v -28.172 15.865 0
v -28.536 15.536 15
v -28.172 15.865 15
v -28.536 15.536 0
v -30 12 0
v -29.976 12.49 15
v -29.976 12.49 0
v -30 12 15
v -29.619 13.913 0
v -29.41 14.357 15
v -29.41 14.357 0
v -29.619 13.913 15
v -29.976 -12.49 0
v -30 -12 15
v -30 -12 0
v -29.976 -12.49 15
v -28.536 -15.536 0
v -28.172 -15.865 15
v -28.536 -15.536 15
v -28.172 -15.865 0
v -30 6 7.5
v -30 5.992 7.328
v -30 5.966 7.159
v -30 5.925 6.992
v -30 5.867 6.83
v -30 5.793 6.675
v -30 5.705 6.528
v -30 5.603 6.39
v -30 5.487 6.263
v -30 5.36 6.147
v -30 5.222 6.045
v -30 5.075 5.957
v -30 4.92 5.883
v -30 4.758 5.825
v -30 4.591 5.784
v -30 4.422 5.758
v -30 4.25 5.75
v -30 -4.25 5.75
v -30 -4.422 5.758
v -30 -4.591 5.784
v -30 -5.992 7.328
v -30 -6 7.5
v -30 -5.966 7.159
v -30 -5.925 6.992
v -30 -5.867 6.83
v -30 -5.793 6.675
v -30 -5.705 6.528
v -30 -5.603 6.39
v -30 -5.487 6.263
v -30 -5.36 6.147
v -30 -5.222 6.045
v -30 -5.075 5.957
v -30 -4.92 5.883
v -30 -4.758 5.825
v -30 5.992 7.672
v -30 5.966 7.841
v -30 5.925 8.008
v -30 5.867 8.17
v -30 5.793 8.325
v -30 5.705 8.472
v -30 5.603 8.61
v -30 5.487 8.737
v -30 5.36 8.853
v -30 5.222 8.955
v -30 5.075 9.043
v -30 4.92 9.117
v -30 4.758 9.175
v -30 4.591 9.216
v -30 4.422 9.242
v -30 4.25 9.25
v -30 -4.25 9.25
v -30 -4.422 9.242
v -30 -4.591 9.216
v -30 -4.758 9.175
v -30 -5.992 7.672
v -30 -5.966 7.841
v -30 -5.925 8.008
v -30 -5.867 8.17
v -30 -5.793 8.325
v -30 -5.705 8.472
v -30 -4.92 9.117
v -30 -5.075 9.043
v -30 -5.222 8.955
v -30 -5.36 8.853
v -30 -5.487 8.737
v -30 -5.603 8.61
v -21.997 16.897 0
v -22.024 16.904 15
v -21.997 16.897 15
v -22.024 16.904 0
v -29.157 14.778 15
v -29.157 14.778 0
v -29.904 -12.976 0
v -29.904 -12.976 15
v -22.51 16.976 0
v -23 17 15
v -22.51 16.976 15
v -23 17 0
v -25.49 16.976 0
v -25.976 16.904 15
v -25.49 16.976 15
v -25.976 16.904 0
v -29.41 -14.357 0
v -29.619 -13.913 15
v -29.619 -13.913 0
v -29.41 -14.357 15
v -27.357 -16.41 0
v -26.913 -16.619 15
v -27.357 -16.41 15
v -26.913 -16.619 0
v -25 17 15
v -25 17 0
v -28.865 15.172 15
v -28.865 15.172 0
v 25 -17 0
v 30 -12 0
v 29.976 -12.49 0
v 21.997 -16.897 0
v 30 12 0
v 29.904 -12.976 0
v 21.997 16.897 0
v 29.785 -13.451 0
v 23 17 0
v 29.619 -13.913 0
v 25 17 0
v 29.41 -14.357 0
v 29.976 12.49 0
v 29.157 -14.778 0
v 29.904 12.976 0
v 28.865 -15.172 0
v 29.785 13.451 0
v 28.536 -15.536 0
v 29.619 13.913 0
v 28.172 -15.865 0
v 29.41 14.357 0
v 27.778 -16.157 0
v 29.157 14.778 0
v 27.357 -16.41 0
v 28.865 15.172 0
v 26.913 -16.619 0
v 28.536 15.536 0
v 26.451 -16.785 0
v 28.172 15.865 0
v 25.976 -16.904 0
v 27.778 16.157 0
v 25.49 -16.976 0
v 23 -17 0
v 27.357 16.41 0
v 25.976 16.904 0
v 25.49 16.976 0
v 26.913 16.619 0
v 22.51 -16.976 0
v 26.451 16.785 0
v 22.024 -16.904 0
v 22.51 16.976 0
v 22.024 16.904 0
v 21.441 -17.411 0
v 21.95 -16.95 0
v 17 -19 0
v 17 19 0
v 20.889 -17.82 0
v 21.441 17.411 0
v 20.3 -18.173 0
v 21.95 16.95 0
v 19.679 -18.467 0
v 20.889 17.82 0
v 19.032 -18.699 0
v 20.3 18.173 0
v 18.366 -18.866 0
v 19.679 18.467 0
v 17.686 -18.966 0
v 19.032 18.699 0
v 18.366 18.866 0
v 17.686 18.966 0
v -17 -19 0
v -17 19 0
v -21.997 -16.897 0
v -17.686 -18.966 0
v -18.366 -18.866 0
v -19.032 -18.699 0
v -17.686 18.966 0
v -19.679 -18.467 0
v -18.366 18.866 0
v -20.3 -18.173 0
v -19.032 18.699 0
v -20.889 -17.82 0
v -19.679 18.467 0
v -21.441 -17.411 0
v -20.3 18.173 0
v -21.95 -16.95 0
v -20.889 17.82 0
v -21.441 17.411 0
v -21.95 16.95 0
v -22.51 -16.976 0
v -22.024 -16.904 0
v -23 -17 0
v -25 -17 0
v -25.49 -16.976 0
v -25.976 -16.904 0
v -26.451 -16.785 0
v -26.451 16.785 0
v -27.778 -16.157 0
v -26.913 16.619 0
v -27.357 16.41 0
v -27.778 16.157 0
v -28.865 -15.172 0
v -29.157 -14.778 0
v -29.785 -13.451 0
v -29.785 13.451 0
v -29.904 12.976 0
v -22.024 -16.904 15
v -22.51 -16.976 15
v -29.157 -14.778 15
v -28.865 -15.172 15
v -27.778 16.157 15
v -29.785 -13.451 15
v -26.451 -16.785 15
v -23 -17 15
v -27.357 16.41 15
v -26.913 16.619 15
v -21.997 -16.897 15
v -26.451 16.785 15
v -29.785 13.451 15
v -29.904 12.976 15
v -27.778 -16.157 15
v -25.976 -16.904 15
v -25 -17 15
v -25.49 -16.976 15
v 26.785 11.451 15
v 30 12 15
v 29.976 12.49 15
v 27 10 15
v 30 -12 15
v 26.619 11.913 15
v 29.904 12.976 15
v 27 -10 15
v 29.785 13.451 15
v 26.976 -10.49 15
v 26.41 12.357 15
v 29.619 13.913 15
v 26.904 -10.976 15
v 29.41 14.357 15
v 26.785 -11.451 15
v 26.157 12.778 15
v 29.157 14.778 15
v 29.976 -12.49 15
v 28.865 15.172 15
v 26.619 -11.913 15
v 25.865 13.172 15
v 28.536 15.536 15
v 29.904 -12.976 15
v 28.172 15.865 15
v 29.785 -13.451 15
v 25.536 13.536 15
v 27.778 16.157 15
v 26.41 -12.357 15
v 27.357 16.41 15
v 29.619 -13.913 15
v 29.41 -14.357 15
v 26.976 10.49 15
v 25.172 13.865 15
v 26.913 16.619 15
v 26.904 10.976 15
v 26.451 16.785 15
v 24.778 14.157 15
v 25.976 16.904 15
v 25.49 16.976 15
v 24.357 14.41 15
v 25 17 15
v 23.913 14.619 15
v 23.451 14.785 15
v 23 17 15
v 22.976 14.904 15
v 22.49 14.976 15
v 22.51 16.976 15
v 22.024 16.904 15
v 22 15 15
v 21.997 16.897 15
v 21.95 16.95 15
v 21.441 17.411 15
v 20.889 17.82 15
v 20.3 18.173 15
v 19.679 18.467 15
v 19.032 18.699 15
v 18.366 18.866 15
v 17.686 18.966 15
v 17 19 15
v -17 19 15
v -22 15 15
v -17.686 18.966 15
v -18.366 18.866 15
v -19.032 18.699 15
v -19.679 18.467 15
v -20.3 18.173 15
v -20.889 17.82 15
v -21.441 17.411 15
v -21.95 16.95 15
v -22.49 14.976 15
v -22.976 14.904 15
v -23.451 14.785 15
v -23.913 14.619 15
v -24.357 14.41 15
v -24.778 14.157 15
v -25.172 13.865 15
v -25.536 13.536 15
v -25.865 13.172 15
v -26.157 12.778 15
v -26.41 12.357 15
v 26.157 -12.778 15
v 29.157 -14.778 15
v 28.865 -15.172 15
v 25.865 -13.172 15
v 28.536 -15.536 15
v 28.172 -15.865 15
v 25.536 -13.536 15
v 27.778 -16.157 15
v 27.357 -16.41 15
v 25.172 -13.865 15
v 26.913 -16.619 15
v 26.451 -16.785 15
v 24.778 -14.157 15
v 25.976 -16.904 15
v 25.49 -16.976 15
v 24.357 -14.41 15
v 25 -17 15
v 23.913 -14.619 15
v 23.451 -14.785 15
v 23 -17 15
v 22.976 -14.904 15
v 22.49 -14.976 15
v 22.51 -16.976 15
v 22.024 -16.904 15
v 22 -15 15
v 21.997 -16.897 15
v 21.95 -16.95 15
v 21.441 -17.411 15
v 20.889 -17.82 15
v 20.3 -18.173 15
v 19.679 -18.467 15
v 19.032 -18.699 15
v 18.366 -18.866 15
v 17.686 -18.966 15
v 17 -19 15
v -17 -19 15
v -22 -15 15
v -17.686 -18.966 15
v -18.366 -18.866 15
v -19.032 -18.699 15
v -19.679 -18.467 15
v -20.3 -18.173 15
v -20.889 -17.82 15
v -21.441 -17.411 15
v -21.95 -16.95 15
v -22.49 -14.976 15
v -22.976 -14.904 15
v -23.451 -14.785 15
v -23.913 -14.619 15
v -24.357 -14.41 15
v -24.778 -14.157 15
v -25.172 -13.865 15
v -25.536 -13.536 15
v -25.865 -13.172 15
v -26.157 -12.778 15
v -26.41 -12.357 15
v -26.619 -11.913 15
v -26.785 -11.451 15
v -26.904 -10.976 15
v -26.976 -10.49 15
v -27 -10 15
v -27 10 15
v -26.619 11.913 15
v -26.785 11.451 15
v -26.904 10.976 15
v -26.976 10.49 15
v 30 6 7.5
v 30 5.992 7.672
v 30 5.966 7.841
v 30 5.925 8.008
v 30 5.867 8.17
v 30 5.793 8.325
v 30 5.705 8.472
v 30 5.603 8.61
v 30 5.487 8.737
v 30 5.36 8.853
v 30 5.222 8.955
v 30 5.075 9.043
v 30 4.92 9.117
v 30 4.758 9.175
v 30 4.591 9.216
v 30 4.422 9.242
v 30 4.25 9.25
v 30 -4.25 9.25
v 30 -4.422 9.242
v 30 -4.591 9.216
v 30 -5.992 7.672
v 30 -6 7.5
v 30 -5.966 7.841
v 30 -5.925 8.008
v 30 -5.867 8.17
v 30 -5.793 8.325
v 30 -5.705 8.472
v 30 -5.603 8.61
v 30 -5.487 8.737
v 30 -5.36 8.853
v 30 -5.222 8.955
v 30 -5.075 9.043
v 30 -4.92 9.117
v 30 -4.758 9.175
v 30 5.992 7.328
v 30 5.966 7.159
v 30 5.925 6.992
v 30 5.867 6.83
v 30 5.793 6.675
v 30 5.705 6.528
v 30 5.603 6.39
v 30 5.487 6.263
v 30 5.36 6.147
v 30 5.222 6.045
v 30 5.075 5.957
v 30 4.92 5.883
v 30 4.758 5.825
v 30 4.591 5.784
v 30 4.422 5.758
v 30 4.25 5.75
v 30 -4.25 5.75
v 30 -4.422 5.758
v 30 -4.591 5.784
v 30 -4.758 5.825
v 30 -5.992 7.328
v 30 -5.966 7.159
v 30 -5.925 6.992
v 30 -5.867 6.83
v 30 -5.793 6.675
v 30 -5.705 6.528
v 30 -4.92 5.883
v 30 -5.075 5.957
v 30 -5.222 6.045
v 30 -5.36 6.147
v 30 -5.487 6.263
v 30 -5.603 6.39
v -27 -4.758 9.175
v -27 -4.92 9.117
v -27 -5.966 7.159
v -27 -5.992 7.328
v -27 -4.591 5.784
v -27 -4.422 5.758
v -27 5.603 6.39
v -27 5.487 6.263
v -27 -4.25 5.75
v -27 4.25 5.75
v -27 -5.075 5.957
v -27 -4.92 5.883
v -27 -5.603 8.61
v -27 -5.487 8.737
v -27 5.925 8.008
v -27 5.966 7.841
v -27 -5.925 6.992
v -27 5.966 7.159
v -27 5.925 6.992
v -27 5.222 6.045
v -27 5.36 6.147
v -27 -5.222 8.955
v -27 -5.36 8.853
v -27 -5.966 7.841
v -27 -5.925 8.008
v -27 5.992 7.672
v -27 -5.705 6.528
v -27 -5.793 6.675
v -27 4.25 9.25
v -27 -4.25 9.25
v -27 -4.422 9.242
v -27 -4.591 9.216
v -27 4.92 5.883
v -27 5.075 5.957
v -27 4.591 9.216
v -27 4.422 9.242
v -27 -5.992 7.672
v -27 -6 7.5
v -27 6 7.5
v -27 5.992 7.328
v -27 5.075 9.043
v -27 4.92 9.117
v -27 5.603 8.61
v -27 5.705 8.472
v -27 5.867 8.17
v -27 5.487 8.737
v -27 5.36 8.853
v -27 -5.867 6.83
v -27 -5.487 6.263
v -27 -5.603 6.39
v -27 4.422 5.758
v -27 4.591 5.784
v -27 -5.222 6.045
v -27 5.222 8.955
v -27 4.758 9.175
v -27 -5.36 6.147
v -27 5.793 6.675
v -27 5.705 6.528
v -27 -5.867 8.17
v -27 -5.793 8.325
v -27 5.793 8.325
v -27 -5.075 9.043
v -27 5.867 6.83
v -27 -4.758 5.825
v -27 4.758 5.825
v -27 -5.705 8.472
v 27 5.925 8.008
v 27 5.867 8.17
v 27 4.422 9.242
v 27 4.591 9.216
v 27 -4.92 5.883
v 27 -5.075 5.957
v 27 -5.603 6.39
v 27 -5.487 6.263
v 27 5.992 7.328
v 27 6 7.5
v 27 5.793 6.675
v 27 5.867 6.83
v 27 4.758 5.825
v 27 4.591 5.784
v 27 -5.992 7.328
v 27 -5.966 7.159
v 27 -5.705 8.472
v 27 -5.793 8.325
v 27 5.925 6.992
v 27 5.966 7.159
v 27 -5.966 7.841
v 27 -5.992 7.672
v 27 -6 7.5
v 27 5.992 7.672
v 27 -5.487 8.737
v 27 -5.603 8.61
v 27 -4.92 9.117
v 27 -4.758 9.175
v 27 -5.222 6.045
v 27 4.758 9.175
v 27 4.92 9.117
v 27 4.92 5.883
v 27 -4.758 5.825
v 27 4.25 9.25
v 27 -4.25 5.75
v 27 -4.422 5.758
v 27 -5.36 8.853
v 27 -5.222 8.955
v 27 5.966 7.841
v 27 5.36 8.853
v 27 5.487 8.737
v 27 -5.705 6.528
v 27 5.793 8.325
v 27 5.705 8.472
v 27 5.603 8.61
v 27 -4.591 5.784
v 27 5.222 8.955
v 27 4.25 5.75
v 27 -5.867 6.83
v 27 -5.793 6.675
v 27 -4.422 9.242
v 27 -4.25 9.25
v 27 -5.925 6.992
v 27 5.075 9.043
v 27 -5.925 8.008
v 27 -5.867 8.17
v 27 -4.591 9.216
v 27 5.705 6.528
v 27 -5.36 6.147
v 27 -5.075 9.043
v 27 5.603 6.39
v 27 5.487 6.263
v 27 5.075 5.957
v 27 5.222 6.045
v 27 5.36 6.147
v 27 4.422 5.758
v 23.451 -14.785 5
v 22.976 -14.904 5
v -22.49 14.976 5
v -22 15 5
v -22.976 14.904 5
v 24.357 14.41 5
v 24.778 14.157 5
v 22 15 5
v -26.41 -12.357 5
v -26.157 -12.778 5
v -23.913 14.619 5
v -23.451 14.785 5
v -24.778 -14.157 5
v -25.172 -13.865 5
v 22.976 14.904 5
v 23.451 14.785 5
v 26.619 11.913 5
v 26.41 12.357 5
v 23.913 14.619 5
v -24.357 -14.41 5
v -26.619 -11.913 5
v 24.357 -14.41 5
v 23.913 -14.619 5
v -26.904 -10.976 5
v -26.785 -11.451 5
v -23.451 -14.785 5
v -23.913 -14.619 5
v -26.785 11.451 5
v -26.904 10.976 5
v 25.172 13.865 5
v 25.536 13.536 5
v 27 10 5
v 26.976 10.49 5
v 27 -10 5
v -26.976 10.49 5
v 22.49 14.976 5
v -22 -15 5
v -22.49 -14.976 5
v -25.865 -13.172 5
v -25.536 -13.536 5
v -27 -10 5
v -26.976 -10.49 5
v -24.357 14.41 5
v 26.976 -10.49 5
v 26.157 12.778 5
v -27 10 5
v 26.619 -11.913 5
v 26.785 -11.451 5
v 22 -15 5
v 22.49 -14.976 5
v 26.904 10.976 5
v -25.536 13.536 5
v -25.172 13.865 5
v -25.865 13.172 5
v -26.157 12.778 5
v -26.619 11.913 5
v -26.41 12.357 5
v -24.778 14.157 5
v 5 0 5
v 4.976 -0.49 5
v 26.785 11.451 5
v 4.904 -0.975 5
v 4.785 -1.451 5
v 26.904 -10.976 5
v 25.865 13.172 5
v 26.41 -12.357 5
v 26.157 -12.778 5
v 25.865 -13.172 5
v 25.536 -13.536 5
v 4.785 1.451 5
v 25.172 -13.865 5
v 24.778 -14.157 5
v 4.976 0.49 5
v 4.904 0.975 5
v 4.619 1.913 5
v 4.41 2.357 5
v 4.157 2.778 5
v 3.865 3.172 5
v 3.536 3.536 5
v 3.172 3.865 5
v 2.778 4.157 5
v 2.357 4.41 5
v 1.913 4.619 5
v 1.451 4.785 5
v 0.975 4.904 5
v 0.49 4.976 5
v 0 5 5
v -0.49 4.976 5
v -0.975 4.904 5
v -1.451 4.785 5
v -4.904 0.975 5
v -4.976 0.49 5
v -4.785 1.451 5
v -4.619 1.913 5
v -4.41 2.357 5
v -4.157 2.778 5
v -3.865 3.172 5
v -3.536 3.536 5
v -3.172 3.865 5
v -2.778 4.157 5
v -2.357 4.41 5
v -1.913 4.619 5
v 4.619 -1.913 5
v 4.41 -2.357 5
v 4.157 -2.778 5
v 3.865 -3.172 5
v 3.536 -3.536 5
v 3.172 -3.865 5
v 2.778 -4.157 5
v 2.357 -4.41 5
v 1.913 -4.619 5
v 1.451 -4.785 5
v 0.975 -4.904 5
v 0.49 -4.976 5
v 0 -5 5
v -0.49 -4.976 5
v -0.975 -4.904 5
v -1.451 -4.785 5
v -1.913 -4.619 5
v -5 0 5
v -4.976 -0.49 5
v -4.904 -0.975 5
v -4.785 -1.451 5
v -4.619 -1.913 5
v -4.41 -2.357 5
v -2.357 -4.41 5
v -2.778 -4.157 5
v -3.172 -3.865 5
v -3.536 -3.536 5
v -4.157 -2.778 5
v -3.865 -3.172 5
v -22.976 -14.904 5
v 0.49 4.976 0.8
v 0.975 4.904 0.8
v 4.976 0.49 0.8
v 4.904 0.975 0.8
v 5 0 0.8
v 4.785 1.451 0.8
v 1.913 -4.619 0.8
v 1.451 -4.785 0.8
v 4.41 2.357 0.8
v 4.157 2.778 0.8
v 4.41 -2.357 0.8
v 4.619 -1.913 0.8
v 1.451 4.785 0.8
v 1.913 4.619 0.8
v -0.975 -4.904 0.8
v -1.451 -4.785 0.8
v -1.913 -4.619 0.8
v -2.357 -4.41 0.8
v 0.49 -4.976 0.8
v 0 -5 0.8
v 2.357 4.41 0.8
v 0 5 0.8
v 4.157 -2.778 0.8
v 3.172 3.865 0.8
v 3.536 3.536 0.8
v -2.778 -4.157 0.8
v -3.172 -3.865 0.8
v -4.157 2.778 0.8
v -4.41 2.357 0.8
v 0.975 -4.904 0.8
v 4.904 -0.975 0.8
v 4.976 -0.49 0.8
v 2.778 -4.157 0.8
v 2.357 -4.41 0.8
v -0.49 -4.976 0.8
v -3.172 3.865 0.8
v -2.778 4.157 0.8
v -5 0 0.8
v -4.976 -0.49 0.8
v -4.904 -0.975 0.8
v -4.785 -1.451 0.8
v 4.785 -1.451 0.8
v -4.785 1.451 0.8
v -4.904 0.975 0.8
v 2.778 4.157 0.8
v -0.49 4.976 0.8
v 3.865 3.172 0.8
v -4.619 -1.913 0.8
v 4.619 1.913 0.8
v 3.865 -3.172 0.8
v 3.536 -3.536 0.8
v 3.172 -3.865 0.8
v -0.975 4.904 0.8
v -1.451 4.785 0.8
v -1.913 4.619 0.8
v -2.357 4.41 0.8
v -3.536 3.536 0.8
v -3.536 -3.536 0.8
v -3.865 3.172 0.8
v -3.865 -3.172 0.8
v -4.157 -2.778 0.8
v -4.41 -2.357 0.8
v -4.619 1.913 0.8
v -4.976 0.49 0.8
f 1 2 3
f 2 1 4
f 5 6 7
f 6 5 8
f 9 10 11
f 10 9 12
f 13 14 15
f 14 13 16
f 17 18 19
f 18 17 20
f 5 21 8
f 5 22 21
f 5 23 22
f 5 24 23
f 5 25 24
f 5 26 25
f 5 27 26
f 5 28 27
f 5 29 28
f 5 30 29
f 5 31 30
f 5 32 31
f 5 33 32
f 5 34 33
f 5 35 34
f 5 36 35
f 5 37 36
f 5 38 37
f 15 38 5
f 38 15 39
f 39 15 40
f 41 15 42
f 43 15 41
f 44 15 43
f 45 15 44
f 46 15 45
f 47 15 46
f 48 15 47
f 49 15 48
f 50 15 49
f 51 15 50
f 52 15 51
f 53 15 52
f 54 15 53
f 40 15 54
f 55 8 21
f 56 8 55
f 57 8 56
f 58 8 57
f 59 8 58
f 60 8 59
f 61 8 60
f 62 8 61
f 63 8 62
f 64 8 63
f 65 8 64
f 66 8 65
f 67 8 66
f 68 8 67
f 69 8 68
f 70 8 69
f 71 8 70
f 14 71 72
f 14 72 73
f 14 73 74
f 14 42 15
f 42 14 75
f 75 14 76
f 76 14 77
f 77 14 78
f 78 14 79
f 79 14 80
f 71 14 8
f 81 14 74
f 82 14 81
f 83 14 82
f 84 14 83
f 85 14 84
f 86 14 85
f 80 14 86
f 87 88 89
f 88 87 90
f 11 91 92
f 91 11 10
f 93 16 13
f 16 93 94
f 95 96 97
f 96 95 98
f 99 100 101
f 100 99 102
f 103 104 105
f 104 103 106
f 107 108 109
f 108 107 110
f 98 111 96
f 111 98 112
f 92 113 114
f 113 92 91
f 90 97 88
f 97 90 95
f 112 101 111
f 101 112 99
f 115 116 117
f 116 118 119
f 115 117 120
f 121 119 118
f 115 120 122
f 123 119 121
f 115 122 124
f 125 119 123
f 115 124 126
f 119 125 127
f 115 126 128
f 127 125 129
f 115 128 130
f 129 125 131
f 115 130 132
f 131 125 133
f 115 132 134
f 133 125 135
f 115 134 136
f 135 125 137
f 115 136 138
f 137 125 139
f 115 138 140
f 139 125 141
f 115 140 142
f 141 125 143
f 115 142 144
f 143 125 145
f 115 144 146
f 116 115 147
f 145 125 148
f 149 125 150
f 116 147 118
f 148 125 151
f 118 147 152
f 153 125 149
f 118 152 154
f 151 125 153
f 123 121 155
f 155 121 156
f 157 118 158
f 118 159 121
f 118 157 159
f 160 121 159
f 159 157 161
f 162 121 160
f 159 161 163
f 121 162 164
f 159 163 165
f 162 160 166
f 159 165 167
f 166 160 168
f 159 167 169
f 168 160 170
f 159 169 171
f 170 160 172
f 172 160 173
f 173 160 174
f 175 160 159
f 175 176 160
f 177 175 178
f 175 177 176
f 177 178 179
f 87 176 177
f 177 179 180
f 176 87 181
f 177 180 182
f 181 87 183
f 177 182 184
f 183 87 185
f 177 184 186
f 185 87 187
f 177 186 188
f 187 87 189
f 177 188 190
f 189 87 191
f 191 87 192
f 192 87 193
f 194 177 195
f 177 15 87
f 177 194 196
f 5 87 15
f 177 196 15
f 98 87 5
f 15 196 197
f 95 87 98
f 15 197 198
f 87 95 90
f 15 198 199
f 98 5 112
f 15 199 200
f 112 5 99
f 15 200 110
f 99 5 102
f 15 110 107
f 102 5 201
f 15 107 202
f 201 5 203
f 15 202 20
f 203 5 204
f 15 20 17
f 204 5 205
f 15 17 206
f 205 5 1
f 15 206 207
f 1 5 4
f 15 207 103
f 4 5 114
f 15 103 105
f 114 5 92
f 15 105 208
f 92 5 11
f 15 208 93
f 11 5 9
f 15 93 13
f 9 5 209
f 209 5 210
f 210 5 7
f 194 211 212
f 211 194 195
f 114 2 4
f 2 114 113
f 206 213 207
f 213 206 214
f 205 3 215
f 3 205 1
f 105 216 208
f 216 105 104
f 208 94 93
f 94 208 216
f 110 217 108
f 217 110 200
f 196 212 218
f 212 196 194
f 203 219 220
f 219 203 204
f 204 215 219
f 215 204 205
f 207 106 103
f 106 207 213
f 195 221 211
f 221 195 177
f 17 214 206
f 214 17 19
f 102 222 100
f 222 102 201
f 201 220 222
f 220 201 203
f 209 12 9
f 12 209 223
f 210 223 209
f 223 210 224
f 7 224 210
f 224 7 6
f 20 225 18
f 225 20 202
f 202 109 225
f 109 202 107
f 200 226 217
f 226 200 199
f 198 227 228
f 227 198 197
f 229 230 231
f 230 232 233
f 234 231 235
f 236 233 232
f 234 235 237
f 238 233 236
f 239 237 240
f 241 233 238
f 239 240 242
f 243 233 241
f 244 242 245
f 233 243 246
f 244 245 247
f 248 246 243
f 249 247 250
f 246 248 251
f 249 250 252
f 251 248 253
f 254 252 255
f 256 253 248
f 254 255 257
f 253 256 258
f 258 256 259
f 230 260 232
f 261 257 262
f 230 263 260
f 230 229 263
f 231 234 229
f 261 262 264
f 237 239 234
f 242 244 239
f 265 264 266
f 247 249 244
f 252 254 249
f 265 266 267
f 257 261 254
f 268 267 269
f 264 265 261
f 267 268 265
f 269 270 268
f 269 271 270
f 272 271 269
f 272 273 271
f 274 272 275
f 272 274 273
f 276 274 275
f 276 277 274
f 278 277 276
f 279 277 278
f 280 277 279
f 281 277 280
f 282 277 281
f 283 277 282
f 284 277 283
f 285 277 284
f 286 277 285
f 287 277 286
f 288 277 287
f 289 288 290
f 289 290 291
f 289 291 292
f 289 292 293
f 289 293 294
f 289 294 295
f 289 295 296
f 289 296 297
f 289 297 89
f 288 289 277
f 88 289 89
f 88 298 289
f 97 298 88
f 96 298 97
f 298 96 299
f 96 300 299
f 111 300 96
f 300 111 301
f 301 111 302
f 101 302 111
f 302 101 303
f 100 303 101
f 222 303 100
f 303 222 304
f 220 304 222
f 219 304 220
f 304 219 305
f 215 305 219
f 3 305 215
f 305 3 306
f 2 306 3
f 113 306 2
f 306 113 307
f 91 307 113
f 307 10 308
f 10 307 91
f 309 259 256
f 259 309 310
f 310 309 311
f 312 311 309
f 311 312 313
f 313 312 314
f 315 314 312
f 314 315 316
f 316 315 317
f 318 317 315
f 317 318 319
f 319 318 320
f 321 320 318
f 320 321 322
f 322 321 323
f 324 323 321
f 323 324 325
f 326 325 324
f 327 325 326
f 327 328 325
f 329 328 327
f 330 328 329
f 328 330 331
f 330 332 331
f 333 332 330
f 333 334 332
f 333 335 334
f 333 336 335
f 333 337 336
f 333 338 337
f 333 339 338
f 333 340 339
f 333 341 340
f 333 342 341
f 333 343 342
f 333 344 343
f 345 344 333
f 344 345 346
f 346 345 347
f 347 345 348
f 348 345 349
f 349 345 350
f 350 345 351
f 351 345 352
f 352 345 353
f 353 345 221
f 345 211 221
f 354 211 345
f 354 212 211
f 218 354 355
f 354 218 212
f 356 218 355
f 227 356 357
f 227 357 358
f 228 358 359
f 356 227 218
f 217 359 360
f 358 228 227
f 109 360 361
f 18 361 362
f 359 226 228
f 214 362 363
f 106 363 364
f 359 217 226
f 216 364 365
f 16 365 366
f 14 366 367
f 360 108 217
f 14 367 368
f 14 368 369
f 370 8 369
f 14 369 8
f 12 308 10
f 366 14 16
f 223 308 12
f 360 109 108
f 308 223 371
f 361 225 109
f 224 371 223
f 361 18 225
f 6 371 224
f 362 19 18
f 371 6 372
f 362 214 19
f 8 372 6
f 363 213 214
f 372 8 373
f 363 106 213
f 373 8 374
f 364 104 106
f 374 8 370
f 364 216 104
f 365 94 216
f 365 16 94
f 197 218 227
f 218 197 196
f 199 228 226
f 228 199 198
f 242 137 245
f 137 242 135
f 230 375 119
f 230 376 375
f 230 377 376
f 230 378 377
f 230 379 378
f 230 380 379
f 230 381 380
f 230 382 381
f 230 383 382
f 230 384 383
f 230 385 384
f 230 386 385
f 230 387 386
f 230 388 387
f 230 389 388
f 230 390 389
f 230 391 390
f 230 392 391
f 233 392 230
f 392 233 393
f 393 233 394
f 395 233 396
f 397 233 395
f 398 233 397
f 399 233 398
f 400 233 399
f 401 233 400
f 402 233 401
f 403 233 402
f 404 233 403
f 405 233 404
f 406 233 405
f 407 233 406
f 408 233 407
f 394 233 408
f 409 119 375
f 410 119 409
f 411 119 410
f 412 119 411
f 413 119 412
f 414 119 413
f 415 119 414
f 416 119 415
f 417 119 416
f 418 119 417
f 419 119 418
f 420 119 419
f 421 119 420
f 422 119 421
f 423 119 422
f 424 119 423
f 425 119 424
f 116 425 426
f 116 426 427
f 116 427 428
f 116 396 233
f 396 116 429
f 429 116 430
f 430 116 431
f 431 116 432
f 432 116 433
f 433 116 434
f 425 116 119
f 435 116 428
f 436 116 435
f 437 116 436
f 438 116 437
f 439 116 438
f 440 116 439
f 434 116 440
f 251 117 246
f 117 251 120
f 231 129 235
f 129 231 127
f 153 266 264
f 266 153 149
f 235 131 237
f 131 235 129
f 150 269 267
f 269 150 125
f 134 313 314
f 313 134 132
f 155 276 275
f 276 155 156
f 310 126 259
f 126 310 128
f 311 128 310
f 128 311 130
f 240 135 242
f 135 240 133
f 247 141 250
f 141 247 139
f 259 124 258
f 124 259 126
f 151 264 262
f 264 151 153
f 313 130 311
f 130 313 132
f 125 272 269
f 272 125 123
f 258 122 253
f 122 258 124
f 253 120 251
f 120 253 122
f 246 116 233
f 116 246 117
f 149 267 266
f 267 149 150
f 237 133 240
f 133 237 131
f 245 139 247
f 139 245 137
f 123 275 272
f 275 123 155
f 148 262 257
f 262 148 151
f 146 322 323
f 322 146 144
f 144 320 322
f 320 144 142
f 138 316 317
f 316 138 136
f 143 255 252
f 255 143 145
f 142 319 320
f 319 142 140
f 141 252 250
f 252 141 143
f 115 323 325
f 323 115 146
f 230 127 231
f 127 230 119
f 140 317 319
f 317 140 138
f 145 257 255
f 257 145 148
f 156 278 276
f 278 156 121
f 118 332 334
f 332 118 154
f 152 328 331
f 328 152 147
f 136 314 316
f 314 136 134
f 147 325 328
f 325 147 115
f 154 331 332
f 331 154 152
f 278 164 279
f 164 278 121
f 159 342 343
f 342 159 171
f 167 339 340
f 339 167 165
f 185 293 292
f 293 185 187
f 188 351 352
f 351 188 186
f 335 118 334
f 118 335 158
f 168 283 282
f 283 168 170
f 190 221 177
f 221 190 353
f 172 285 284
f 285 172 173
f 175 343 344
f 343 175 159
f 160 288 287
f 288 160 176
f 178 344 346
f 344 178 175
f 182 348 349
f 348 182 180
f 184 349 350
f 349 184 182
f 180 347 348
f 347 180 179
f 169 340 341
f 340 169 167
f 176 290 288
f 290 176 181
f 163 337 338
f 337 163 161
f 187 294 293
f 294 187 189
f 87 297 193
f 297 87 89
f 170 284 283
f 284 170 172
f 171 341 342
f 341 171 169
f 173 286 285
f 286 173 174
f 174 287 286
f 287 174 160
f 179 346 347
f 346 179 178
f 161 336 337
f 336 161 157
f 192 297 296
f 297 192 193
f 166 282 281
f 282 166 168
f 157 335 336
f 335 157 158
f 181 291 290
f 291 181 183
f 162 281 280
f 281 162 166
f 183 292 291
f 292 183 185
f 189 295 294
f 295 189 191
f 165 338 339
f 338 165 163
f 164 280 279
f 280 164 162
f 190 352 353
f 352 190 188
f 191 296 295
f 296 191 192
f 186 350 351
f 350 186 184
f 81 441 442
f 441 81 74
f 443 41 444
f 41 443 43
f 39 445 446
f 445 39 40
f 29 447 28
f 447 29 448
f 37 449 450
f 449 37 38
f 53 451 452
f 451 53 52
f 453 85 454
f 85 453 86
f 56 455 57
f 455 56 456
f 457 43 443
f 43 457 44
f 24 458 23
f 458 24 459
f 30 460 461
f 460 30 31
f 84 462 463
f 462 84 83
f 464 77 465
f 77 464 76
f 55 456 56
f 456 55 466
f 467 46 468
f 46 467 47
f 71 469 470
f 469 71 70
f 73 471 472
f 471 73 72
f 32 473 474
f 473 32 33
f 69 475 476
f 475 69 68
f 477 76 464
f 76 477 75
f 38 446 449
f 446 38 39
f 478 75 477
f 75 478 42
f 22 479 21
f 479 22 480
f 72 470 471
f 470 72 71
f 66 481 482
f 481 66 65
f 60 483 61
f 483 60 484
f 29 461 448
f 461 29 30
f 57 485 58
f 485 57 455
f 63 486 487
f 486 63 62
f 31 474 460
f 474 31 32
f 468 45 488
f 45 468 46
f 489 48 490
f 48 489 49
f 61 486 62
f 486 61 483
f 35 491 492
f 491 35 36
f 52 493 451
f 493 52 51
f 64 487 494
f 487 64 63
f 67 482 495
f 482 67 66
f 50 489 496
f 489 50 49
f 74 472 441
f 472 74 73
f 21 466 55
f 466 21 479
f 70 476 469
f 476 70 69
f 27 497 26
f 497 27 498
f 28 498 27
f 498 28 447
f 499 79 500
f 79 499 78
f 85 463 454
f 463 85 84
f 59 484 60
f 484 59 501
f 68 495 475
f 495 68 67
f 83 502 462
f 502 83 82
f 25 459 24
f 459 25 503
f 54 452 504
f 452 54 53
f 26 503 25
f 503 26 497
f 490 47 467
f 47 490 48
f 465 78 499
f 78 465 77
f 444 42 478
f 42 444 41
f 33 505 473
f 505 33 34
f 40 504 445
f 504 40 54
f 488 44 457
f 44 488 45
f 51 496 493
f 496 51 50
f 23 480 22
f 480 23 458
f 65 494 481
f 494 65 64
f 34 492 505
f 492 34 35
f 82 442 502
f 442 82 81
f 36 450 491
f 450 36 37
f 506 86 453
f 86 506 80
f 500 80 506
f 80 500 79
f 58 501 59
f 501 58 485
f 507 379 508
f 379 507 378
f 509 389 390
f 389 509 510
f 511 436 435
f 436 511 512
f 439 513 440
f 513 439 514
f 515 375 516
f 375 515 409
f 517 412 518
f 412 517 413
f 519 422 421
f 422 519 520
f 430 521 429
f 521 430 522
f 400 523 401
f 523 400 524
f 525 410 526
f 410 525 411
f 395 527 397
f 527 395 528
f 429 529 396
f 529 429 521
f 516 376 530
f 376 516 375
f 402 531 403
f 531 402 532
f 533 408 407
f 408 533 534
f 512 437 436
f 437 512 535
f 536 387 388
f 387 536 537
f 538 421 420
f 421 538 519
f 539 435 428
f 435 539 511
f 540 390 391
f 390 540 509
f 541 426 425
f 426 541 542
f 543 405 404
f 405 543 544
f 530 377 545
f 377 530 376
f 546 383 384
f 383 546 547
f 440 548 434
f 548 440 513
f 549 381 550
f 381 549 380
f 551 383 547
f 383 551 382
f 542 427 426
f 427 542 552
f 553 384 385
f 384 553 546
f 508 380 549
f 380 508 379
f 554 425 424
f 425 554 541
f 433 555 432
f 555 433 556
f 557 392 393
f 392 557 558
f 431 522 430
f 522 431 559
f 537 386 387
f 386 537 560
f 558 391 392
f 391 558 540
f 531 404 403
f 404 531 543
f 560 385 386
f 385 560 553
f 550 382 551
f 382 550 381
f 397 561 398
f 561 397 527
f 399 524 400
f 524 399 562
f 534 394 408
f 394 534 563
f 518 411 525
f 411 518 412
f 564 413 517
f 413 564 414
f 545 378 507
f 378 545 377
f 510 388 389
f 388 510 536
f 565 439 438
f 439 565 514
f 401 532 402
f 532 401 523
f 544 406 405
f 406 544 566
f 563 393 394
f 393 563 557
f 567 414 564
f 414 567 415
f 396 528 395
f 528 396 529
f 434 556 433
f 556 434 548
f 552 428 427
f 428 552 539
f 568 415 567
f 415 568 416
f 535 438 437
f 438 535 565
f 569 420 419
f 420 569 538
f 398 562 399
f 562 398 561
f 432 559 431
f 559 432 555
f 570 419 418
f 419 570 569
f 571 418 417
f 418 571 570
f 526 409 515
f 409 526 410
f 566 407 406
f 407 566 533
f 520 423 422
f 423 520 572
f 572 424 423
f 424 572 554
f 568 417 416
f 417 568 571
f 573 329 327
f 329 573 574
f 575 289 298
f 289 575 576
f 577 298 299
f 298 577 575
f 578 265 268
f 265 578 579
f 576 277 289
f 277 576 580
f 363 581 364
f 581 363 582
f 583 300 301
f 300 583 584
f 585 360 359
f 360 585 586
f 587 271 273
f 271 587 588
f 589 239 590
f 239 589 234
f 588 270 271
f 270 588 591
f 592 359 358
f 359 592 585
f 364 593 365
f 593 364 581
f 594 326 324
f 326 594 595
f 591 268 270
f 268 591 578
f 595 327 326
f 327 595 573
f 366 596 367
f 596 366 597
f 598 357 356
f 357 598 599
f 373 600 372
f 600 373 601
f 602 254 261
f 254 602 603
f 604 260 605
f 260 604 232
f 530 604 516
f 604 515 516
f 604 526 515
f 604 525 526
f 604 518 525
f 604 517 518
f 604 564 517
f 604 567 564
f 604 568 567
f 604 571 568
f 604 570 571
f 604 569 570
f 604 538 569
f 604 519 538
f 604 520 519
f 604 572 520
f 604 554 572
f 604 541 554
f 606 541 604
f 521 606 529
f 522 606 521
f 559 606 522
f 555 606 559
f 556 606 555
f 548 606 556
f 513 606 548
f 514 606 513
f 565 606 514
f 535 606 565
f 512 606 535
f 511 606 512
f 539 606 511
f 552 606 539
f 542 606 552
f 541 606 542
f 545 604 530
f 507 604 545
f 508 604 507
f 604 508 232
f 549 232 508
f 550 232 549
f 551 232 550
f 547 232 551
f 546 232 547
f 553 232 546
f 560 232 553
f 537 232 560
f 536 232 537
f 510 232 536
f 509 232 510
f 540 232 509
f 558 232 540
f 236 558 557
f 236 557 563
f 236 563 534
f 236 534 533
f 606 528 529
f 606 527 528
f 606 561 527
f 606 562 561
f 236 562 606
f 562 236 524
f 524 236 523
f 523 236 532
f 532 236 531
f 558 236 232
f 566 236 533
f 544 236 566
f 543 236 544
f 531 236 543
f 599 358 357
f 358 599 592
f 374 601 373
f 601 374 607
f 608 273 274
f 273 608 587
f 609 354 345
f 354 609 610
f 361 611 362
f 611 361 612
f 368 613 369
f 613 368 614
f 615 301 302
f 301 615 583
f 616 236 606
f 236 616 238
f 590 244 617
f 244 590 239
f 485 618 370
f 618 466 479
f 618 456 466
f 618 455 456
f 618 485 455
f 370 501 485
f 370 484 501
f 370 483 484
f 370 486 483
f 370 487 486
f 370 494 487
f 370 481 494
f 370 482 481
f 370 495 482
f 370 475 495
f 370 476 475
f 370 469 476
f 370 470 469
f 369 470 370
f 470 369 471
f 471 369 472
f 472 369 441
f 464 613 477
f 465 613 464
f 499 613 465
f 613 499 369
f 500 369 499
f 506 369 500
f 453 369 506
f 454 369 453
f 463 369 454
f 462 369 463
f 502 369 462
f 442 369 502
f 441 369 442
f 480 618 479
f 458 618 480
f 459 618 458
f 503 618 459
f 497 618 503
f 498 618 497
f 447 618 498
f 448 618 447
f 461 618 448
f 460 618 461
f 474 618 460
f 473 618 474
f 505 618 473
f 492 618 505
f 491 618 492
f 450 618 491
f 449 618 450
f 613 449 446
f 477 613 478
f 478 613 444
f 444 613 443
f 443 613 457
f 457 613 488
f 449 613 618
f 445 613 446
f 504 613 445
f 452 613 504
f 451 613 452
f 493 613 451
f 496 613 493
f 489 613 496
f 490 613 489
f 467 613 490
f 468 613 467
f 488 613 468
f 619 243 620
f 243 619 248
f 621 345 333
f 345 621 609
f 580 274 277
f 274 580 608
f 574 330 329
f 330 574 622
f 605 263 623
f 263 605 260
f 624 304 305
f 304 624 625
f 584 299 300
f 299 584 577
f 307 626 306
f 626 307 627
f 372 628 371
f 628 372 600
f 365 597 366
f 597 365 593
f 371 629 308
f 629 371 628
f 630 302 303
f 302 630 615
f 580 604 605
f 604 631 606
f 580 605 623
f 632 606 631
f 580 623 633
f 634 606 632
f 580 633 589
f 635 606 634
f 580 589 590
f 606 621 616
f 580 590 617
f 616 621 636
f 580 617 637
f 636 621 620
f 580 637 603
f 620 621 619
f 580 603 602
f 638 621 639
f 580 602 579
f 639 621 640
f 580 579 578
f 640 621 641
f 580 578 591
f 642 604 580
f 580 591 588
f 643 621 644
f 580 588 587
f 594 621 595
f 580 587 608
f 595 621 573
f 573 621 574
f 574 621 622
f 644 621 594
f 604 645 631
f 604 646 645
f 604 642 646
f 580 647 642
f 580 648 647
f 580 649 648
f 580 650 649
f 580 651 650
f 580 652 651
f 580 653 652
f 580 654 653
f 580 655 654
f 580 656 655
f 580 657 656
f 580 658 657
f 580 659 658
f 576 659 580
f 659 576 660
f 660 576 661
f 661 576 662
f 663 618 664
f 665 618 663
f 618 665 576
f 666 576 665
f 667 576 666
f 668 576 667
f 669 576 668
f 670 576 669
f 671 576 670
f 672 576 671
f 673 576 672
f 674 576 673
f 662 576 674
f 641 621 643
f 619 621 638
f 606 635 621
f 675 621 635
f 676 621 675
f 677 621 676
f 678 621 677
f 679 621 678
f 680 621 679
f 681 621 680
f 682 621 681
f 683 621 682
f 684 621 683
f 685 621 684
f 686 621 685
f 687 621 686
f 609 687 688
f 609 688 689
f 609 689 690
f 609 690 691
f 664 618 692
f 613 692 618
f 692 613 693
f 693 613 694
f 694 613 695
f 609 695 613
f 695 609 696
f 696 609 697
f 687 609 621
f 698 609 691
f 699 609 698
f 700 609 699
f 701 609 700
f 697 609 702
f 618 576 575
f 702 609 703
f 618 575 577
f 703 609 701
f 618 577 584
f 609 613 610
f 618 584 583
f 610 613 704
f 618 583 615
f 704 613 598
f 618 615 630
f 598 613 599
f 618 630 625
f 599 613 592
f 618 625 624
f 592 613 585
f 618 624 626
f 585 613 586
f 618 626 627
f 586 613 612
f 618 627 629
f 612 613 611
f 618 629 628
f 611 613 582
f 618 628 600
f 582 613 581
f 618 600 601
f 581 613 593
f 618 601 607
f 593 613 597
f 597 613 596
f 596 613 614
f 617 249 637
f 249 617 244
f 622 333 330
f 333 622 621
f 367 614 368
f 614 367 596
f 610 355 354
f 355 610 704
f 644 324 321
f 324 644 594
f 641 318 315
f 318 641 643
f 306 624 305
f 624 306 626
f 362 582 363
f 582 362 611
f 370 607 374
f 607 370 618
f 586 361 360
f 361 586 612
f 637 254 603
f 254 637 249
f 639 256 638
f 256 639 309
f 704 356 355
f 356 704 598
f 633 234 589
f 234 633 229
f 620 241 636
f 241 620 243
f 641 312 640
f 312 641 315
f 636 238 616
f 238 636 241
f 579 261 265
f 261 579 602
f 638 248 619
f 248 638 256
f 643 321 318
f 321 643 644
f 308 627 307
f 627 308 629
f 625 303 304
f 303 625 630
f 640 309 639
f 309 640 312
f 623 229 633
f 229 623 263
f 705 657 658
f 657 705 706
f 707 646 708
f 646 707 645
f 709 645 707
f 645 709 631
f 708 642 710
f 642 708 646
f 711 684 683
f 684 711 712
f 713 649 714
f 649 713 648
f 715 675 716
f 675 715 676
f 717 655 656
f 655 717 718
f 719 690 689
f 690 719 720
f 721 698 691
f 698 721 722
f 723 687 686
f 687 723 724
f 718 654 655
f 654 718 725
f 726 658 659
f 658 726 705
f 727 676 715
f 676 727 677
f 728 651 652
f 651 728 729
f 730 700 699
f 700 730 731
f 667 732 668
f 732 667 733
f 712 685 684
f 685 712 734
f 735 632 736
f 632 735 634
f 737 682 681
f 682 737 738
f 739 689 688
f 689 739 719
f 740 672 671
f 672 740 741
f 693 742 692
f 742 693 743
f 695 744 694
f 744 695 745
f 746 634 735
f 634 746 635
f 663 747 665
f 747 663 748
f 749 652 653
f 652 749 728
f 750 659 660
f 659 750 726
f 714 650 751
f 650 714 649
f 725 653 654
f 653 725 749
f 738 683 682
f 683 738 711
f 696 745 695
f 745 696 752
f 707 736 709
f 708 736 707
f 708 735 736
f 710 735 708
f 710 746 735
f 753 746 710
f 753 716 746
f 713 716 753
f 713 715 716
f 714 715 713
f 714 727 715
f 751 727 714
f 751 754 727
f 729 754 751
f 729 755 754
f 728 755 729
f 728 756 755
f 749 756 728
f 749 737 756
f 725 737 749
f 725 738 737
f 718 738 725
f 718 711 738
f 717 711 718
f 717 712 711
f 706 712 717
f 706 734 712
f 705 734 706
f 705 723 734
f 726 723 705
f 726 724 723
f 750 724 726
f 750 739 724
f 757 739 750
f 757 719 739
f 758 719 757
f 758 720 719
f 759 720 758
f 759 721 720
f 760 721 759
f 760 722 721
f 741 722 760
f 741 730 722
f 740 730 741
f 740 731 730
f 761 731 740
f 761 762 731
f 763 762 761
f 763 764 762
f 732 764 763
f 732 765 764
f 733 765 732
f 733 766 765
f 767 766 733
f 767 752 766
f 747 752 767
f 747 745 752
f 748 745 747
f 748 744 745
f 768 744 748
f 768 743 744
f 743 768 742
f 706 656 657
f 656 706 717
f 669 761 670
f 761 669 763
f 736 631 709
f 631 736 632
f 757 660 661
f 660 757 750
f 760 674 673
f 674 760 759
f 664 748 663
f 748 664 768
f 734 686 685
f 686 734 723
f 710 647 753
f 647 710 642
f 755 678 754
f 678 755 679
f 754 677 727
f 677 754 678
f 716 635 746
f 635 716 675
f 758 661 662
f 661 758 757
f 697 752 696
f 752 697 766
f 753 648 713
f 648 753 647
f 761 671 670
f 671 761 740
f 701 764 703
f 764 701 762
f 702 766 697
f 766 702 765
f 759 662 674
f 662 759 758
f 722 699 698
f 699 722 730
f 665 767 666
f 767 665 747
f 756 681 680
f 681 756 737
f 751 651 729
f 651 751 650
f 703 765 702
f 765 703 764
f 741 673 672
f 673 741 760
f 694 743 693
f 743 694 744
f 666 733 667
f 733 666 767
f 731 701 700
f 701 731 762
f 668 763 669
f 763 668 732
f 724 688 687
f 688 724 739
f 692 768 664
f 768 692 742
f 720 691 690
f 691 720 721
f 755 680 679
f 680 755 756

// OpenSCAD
/*
  SonhoBand case v0.1 dev
  Variante maior para prototipo eletronico inicial.

  Objetivo:
  - Acomodar ESP32 DevKit, MPU6050, TMP117, LiPo 250 mAh e fios.
  - Priorizar montagem simples e espaco interno.
  - Nao incluir HC-05, pois o ESP32 ja possui Bluetooth/BLE.

  Unidades: milimetros.
  Orientacao:
  - X = comprimento
  - Y = largura
  - Z = altura
*/

$fn = 64;

// -----------------------------
// Parametros principais
// -----------------------------

external_length = 60;
external_width = 38;
external_height = 15;

cavity_length = 54;
cavity_width = 30;
cavity_height = 10;

wall = 2;
corner_radius = 7;

// A cavidade abre pela parte superior. O fundo fica mais espesso nesta
// variante para respeitar a altura util aproximada de 10 mm.
cavity_floor_thickness = external_height - cavity_height;
cavity_corner_radius = max(corner_radius - wall, 1);

// Area inferior fina para contato do sensor termico.
sensor_diameter = 10;
sensor_floor_thickness = 0.8;

// Hastes laterais integradas ao envelope externo.
lug_length = 12;
lug_width = cavity_width + 2 * wall;
lug_projection = 6;
lug_corner_radius = 5;

// Fendas para elastico de 12 mm.
elastic_slot_width = 12;
elastic_slot_height = 3.5;
elastic_slot_z = external_height / 2;

// Referencias aproximadas dos componentes previstos.
// Estes valores sao apenas guias de projeto, nao sao subtraidos do modelo.
esp32_devkit_size = [52, 28, 6];
mpu6050_size = [20, 15, 3];
tmp117_size = [10, 10, 2];
lipo_250mah_size = [35, 20, 5];

// -----------------------------
// Modelo final
// -----------------------------

sonhoband_case_dev();

// Para visualizar referencias internas no preview, descomente:
// component_reference_layout();

// -----------------------------
// Modulos principais
// -----------------------------

module sonhoband_case_dev() {
    difference() {
        union() {
            central_body();
            side_lugs();
        }

        internal_cavity();
        sensor_thin_area();
        elastic_slots();
    }
}

module central_body() {
    rounded_box_xy(
        [external_length - 2 * lug_projection, external_width, external_height],
        corner_radius
    );
}

module side_lugs() {
    for (side = [-1, 1]) {
        translate([
            side * (external_length / 2 - lug_length / 2),
            0,
            0
        ]) {
            rounded_box_xy(
                [lug_length, lug_width, external_height],
                lug_corner_radius
            );
        }
    }
}

module internal_cavity() {
    // Cavidade aberta pela parte superior, aproximando 54 x 30 x 10 mm.
    translate([0, 0, cavity_floor_thickness]) {
        rounded_box_xy(
            [cavity_length, cavity_width, cavity_height + 1],
            cavity_corner_radius
        );
    }
}

module sensor_thin_area() {
    // Rebaixo circular interno que deixa apenas 0,8 mm de material no fundo.
    translate([0, 0, sensor_floor_thickness]) {
        cylinder(
            h = external_height + 2,
            d = sensor_diameter,
            center = false
        );
    }
}

module elastic_slots() {
    for (side = [-1, 1]) {
        translate([
            side * (external_length / 2 - lug_length / 2),
            0,
            elastic_slot_z
        ]) {
            elastic_slot_cut(lug_length + 4);
        }
    }
}

module component_reference_layout() {
    // Guias visuais opcionais para verificar a ideia de arranjo interno.
    color([0.1, 0.3, 1.0, 0.25])
        translate([0, 0, cavity_floor_thickness + esp32_devkit_size[2] / 2])
            cube(esp32_devkit_size, center = true);

    color([1.0, 0.6, 0.1, 0.25])
        translate([-14, -7, cavity_floor_thickness + 7])
            cube(mpu6050_size, center = true);

    color([0.0, 0.8, 0.5, 0.25])
        translate([12, -8, cavity_floor_thickness + 6])
            cube(tmp117_size, center = true);

    color([0.9, 0.1, 0.1, 0.25])
        translate([6, 7, cavity_floor_thickness + 7])
            cube(lipo_250mah_size, center = true);
}

// -----------------------------
// Modulos utilitarios
// -----------------------------

module rounded_box_xy(size, radius) {
    // Caixa com cantos arredondados no plano XY e laterais verticais.
    safe_radius = min(radius, min(size[0], size[1]) / 2);

    hull() {
        for (x = [-size[0] / 2 + safe_radius, size[0] / 2 - safe_radius]) {
            for (y = [-size[1] / 2 + safe_radius, size[1] / 2 - safe_radius]) {
                translate([x, y, 0]) {
                    cylinder(
                        h = size[2],
                        r = safe_radius,
                        center = false
                    );
                }
            }
        }
    }
}

module elastic_slot_cut(length) {
    // Fenda em formato capsula, atravessando cada haste lateral no eixo X.
    slot_radius = elastic_slot_height / 2;

    hull() {
        for (y = [
            -elastic_slot_width / 2 + slot_radius,
            elastic_slot_width / 2 - slot_radius
        ]) {
            translate([0, y, 0]) {
                rotate([0, 90, 0]) {
                    cylinder(
                        h = length,
                        r = slot_radius,
                        center = true
                    );
                }
            }
        }
    }
}
